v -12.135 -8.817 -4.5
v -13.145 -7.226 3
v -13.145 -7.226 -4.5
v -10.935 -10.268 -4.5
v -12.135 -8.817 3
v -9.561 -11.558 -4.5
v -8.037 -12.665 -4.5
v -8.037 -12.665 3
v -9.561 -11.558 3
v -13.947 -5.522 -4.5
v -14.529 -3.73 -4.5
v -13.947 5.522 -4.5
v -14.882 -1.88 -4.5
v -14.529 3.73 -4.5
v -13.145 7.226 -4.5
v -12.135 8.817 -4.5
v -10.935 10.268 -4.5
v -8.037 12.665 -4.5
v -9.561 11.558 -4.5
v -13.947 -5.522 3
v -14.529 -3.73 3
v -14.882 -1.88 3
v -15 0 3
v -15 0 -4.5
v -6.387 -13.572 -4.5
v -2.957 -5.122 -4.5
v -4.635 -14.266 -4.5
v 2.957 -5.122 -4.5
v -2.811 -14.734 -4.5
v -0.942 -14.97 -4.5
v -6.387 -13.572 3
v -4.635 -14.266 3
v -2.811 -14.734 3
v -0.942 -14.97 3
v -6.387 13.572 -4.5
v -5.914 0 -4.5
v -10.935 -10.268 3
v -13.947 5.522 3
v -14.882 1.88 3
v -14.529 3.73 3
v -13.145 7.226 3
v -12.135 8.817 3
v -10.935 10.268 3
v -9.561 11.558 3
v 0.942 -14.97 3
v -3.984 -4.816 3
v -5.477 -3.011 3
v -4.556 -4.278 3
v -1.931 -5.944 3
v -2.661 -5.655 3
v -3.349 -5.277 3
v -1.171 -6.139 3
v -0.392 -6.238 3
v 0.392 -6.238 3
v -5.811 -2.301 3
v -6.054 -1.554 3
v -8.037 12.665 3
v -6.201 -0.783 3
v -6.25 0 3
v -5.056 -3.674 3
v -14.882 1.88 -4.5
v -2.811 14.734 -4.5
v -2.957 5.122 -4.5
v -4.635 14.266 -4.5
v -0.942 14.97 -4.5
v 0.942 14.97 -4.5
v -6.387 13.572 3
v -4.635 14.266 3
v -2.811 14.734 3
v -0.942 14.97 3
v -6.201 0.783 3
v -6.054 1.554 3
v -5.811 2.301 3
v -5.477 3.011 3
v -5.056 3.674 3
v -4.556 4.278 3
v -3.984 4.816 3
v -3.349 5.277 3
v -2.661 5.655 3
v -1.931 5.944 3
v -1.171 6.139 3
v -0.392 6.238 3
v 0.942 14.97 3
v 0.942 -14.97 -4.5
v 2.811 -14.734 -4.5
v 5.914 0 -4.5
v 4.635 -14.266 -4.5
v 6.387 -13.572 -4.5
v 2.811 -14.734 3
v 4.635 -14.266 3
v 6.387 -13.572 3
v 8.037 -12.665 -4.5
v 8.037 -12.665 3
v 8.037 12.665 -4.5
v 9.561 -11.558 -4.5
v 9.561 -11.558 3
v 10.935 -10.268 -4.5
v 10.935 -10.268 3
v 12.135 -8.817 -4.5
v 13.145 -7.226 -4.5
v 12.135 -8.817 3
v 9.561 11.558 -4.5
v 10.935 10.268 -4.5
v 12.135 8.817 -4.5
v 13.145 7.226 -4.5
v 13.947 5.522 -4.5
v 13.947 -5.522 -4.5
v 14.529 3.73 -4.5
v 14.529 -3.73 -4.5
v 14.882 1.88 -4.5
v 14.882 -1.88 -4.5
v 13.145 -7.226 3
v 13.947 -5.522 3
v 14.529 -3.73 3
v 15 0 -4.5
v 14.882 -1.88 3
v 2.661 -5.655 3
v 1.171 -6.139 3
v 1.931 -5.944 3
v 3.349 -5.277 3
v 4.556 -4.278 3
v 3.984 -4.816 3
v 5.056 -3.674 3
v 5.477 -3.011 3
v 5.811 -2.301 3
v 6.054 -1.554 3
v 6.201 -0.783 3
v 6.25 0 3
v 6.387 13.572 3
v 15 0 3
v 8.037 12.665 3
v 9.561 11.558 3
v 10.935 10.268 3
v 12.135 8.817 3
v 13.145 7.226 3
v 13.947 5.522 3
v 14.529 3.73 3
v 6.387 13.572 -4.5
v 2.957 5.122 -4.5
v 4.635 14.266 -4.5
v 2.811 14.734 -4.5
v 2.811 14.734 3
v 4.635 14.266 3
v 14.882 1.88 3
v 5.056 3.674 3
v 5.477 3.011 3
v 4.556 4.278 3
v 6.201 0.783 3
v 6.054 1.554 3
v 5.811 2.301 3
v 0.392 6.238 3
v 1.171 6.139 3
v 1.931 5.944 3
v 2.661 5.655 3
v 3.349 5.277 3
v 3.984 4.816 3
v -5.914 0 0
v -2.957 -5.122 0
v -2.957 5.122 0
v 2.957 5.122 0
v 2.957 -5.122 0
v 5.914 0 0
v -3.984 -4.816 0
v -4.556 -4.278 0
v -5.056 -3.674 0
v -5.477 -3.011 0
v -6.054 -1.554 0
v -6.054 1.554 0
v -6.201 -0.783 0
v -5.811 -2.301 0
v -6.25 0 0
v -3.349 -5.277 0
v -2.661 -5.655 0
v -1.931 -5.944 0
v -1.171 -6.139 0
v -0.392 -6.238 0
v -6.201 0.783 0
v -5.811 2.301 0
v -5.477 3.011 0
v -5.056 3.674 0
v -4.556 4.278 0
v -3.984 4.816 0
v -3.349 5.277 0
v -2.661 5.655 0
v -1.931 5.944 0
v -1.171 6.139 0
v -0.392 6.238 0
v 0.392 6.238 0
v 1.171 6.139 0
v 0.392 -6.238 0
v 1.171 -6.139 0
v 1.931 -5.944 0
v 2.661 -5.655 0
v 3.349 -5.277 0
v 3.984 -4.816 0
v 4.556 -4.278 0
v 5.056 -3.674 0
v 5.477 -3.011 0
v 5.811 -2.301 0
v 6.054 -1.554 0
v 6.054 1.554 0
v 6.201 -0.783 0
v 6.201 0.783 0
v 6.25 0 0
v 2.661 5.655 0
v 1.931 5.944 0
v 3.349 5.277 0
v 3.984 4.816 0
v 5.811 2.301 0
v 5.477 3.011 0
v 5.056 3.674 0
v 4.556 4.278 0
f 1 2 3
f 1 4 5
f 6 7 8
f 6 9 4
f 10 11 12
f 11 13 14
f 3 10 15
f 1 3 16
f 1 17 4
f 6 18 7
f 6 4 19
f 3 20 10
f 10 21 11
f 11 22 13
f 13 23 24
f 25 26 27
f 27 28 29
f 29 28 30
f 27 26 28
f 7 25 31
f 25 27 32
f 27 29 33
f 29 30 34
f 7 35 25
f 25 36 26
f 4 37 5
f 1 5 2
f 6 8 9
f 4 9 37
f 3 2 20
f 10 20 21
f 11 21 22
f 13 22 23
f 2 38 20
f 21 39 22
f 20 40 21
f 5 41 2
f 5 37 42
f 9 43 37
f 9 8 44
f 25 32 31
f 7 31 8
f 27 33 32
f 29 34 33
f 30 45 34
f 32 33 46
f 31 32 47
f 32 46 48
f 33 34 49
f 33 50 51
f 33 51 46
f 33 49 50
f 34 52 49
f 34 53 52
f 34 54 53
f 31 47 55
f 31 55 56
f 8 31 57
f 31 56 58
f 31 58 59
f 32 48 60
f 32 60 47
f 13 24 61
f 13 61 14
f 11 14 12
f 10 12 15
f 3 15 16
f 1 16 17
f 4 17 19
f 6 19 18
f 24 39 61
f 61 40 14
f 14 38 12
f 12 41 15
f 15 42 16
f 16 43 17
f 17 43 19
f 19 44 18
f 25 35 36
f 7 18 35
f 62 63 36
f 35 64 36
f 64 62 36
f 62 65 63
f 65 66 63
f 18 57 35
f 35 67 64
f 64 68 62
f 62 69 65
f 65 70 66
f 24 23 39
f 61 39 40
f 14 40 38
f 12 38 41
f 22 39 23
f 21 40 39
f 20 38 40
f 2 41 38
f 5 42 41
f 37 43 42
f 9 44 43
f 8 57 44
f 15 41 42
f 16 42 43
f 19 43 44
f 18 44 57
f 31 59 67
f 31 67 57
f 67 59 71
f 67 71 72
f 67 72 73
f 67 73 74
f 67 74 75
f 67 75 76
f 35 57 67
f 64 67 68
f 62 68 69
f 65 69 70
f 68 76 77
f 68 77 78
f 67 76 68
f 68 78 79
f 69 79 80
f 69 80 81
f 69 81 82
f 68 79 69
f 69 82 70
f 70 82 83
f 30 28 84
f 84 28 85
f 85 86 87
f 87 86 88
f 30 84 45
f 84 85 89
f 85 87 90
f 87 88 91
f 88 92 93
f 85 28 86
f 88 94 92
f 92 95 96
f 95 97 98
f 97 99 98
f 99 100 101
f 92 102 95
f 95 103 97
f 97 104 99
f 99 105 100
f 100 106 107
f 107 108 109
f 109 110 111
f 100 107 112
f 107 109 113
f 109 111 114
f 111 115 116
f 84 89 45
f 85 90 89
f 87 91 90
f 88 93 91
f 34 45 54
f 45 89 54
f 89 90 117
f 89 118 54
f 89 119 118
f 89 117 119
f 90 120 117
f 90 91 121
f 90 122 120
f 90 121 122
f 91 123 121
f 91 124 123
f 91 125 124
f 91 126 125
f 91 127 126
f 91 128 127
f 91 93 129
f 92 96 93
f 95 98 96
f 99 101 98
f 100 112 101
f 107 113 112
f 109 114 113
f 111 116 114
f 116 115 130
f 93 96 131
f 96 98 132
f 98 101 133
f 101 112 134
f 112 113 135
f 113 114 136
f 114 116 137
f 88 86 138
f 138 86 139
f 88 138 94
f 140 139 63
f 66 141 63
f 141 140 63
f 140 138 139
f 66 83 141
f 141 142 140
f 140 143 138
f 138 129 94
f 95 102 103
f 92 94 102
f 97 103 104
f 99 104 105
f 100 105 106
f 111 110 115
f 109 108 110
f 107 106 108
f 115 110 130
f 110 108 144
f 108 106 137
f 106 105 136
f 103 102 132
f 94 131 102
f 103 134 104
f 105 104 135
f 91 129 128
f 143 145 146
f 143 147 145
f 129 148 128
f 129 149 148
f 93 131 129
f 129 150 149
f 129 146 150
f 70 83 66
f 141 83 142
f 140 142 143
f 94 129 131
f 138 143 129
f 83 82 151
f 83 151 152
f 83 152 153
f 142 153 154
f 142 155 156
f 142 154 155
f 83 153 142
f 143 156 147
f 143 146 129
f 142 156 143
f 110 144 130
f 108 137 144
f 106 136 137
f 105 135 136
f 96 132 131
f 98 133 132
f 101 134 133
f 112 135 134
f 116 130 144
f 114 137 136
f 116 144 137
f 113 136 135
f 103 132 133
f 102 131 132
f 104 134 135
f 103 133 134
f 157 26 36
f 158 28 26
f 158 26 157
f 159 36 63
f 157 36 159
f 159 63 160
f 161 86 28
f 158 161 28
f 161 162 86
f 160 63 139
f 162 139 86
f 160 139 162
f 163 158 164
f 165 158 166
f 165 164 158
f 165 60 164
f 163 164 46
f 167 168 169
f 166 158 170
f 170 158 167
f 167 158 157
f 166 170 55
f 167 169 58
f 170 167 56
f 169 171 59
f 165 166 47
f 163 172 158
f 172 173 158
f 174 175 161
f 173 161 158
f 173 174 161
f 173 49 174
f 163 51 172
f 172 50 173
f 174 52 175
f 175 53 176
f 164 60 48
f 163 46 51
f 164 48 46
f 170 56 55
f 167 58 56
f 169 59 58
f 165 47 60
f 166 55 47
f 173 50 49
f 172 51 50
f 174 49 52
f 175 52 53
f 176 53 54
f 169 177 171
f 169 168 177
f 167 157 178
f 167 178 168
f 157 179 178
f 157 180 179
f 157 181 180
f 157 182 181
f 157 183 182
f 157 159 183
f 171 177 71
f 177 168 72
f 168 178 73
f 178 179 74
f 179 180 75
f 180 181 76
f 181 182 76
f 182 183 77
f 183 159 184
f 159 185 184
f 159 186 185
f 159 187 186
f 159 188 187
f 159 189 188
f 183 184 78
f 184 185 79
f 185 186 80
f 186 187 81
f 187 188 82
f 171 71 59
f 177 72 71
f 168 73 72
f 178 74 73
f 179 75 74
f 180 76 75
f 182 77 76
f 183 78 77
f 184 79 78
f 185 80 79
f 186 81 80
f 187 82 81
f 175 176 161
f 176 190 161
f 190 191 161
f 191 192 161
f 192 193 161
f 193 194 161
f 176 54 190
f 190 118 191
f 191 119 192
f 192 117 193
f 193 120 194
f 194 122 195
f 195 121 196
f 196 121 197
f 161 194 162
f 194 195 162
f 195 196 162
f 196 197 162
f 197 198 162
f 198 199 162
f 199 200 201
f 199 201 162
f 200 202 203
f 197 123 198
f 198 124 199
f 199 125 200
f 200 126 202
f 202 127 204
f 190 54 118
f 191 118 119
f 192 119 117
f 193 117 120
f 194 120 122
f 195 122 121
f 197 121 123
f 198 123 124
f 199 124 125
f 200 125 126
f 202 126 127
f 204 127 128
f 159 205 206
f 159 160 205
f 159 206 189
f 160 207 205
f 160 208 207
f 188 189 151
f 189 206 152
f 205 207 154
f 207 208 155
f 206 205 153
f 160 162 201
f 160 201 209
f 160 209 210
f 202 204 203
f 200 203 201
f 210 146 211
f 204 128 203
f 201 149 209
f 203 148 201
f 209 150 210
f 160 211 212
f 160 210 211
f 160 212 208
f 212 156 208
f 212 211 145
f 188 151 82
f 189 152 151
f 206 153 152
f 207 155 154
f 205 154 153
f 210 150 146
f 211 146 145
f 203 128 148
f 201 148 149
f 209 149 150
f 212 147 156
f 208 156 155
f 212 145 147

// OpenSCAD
$fn = 50;

difference() {
	union() {
		translate(v = [0, 0, -4.5]) {
			cylinder(h = 7.5, r = 15.0);
		}
		#translate(v = [0, 0, -6.0]) {
			cylinder(h = 6, r = 2.875);
		}
	}
	union() {
		translate(v = [0, 0, 0]) {
			rotate(a = [0, 0, 0]) {
				difference() {
					union() {
						translate(v = [0, 0, -5]) {
							linear_extrude(height = 5) {
								polygon(points = [[5.914249999999999, 0.0], [2.957125, 5.1218907443321156], [-2.9571249999999982, 5.1218907443321156], [-5.914249999999999, 7.242867331857232e-16], [-2.9571250000000022, -5.121890744332115], [2.9571249999999956, -5.121890744332118]]);
							}
						}
					}
					union();
				}
			}
		}
		#cylinder(h = 3, r = 6.25);
		#translate(v = [0, 0, -100.0]) {
			cylinder(h = 200, r = 3.25);
		}
	}
}
